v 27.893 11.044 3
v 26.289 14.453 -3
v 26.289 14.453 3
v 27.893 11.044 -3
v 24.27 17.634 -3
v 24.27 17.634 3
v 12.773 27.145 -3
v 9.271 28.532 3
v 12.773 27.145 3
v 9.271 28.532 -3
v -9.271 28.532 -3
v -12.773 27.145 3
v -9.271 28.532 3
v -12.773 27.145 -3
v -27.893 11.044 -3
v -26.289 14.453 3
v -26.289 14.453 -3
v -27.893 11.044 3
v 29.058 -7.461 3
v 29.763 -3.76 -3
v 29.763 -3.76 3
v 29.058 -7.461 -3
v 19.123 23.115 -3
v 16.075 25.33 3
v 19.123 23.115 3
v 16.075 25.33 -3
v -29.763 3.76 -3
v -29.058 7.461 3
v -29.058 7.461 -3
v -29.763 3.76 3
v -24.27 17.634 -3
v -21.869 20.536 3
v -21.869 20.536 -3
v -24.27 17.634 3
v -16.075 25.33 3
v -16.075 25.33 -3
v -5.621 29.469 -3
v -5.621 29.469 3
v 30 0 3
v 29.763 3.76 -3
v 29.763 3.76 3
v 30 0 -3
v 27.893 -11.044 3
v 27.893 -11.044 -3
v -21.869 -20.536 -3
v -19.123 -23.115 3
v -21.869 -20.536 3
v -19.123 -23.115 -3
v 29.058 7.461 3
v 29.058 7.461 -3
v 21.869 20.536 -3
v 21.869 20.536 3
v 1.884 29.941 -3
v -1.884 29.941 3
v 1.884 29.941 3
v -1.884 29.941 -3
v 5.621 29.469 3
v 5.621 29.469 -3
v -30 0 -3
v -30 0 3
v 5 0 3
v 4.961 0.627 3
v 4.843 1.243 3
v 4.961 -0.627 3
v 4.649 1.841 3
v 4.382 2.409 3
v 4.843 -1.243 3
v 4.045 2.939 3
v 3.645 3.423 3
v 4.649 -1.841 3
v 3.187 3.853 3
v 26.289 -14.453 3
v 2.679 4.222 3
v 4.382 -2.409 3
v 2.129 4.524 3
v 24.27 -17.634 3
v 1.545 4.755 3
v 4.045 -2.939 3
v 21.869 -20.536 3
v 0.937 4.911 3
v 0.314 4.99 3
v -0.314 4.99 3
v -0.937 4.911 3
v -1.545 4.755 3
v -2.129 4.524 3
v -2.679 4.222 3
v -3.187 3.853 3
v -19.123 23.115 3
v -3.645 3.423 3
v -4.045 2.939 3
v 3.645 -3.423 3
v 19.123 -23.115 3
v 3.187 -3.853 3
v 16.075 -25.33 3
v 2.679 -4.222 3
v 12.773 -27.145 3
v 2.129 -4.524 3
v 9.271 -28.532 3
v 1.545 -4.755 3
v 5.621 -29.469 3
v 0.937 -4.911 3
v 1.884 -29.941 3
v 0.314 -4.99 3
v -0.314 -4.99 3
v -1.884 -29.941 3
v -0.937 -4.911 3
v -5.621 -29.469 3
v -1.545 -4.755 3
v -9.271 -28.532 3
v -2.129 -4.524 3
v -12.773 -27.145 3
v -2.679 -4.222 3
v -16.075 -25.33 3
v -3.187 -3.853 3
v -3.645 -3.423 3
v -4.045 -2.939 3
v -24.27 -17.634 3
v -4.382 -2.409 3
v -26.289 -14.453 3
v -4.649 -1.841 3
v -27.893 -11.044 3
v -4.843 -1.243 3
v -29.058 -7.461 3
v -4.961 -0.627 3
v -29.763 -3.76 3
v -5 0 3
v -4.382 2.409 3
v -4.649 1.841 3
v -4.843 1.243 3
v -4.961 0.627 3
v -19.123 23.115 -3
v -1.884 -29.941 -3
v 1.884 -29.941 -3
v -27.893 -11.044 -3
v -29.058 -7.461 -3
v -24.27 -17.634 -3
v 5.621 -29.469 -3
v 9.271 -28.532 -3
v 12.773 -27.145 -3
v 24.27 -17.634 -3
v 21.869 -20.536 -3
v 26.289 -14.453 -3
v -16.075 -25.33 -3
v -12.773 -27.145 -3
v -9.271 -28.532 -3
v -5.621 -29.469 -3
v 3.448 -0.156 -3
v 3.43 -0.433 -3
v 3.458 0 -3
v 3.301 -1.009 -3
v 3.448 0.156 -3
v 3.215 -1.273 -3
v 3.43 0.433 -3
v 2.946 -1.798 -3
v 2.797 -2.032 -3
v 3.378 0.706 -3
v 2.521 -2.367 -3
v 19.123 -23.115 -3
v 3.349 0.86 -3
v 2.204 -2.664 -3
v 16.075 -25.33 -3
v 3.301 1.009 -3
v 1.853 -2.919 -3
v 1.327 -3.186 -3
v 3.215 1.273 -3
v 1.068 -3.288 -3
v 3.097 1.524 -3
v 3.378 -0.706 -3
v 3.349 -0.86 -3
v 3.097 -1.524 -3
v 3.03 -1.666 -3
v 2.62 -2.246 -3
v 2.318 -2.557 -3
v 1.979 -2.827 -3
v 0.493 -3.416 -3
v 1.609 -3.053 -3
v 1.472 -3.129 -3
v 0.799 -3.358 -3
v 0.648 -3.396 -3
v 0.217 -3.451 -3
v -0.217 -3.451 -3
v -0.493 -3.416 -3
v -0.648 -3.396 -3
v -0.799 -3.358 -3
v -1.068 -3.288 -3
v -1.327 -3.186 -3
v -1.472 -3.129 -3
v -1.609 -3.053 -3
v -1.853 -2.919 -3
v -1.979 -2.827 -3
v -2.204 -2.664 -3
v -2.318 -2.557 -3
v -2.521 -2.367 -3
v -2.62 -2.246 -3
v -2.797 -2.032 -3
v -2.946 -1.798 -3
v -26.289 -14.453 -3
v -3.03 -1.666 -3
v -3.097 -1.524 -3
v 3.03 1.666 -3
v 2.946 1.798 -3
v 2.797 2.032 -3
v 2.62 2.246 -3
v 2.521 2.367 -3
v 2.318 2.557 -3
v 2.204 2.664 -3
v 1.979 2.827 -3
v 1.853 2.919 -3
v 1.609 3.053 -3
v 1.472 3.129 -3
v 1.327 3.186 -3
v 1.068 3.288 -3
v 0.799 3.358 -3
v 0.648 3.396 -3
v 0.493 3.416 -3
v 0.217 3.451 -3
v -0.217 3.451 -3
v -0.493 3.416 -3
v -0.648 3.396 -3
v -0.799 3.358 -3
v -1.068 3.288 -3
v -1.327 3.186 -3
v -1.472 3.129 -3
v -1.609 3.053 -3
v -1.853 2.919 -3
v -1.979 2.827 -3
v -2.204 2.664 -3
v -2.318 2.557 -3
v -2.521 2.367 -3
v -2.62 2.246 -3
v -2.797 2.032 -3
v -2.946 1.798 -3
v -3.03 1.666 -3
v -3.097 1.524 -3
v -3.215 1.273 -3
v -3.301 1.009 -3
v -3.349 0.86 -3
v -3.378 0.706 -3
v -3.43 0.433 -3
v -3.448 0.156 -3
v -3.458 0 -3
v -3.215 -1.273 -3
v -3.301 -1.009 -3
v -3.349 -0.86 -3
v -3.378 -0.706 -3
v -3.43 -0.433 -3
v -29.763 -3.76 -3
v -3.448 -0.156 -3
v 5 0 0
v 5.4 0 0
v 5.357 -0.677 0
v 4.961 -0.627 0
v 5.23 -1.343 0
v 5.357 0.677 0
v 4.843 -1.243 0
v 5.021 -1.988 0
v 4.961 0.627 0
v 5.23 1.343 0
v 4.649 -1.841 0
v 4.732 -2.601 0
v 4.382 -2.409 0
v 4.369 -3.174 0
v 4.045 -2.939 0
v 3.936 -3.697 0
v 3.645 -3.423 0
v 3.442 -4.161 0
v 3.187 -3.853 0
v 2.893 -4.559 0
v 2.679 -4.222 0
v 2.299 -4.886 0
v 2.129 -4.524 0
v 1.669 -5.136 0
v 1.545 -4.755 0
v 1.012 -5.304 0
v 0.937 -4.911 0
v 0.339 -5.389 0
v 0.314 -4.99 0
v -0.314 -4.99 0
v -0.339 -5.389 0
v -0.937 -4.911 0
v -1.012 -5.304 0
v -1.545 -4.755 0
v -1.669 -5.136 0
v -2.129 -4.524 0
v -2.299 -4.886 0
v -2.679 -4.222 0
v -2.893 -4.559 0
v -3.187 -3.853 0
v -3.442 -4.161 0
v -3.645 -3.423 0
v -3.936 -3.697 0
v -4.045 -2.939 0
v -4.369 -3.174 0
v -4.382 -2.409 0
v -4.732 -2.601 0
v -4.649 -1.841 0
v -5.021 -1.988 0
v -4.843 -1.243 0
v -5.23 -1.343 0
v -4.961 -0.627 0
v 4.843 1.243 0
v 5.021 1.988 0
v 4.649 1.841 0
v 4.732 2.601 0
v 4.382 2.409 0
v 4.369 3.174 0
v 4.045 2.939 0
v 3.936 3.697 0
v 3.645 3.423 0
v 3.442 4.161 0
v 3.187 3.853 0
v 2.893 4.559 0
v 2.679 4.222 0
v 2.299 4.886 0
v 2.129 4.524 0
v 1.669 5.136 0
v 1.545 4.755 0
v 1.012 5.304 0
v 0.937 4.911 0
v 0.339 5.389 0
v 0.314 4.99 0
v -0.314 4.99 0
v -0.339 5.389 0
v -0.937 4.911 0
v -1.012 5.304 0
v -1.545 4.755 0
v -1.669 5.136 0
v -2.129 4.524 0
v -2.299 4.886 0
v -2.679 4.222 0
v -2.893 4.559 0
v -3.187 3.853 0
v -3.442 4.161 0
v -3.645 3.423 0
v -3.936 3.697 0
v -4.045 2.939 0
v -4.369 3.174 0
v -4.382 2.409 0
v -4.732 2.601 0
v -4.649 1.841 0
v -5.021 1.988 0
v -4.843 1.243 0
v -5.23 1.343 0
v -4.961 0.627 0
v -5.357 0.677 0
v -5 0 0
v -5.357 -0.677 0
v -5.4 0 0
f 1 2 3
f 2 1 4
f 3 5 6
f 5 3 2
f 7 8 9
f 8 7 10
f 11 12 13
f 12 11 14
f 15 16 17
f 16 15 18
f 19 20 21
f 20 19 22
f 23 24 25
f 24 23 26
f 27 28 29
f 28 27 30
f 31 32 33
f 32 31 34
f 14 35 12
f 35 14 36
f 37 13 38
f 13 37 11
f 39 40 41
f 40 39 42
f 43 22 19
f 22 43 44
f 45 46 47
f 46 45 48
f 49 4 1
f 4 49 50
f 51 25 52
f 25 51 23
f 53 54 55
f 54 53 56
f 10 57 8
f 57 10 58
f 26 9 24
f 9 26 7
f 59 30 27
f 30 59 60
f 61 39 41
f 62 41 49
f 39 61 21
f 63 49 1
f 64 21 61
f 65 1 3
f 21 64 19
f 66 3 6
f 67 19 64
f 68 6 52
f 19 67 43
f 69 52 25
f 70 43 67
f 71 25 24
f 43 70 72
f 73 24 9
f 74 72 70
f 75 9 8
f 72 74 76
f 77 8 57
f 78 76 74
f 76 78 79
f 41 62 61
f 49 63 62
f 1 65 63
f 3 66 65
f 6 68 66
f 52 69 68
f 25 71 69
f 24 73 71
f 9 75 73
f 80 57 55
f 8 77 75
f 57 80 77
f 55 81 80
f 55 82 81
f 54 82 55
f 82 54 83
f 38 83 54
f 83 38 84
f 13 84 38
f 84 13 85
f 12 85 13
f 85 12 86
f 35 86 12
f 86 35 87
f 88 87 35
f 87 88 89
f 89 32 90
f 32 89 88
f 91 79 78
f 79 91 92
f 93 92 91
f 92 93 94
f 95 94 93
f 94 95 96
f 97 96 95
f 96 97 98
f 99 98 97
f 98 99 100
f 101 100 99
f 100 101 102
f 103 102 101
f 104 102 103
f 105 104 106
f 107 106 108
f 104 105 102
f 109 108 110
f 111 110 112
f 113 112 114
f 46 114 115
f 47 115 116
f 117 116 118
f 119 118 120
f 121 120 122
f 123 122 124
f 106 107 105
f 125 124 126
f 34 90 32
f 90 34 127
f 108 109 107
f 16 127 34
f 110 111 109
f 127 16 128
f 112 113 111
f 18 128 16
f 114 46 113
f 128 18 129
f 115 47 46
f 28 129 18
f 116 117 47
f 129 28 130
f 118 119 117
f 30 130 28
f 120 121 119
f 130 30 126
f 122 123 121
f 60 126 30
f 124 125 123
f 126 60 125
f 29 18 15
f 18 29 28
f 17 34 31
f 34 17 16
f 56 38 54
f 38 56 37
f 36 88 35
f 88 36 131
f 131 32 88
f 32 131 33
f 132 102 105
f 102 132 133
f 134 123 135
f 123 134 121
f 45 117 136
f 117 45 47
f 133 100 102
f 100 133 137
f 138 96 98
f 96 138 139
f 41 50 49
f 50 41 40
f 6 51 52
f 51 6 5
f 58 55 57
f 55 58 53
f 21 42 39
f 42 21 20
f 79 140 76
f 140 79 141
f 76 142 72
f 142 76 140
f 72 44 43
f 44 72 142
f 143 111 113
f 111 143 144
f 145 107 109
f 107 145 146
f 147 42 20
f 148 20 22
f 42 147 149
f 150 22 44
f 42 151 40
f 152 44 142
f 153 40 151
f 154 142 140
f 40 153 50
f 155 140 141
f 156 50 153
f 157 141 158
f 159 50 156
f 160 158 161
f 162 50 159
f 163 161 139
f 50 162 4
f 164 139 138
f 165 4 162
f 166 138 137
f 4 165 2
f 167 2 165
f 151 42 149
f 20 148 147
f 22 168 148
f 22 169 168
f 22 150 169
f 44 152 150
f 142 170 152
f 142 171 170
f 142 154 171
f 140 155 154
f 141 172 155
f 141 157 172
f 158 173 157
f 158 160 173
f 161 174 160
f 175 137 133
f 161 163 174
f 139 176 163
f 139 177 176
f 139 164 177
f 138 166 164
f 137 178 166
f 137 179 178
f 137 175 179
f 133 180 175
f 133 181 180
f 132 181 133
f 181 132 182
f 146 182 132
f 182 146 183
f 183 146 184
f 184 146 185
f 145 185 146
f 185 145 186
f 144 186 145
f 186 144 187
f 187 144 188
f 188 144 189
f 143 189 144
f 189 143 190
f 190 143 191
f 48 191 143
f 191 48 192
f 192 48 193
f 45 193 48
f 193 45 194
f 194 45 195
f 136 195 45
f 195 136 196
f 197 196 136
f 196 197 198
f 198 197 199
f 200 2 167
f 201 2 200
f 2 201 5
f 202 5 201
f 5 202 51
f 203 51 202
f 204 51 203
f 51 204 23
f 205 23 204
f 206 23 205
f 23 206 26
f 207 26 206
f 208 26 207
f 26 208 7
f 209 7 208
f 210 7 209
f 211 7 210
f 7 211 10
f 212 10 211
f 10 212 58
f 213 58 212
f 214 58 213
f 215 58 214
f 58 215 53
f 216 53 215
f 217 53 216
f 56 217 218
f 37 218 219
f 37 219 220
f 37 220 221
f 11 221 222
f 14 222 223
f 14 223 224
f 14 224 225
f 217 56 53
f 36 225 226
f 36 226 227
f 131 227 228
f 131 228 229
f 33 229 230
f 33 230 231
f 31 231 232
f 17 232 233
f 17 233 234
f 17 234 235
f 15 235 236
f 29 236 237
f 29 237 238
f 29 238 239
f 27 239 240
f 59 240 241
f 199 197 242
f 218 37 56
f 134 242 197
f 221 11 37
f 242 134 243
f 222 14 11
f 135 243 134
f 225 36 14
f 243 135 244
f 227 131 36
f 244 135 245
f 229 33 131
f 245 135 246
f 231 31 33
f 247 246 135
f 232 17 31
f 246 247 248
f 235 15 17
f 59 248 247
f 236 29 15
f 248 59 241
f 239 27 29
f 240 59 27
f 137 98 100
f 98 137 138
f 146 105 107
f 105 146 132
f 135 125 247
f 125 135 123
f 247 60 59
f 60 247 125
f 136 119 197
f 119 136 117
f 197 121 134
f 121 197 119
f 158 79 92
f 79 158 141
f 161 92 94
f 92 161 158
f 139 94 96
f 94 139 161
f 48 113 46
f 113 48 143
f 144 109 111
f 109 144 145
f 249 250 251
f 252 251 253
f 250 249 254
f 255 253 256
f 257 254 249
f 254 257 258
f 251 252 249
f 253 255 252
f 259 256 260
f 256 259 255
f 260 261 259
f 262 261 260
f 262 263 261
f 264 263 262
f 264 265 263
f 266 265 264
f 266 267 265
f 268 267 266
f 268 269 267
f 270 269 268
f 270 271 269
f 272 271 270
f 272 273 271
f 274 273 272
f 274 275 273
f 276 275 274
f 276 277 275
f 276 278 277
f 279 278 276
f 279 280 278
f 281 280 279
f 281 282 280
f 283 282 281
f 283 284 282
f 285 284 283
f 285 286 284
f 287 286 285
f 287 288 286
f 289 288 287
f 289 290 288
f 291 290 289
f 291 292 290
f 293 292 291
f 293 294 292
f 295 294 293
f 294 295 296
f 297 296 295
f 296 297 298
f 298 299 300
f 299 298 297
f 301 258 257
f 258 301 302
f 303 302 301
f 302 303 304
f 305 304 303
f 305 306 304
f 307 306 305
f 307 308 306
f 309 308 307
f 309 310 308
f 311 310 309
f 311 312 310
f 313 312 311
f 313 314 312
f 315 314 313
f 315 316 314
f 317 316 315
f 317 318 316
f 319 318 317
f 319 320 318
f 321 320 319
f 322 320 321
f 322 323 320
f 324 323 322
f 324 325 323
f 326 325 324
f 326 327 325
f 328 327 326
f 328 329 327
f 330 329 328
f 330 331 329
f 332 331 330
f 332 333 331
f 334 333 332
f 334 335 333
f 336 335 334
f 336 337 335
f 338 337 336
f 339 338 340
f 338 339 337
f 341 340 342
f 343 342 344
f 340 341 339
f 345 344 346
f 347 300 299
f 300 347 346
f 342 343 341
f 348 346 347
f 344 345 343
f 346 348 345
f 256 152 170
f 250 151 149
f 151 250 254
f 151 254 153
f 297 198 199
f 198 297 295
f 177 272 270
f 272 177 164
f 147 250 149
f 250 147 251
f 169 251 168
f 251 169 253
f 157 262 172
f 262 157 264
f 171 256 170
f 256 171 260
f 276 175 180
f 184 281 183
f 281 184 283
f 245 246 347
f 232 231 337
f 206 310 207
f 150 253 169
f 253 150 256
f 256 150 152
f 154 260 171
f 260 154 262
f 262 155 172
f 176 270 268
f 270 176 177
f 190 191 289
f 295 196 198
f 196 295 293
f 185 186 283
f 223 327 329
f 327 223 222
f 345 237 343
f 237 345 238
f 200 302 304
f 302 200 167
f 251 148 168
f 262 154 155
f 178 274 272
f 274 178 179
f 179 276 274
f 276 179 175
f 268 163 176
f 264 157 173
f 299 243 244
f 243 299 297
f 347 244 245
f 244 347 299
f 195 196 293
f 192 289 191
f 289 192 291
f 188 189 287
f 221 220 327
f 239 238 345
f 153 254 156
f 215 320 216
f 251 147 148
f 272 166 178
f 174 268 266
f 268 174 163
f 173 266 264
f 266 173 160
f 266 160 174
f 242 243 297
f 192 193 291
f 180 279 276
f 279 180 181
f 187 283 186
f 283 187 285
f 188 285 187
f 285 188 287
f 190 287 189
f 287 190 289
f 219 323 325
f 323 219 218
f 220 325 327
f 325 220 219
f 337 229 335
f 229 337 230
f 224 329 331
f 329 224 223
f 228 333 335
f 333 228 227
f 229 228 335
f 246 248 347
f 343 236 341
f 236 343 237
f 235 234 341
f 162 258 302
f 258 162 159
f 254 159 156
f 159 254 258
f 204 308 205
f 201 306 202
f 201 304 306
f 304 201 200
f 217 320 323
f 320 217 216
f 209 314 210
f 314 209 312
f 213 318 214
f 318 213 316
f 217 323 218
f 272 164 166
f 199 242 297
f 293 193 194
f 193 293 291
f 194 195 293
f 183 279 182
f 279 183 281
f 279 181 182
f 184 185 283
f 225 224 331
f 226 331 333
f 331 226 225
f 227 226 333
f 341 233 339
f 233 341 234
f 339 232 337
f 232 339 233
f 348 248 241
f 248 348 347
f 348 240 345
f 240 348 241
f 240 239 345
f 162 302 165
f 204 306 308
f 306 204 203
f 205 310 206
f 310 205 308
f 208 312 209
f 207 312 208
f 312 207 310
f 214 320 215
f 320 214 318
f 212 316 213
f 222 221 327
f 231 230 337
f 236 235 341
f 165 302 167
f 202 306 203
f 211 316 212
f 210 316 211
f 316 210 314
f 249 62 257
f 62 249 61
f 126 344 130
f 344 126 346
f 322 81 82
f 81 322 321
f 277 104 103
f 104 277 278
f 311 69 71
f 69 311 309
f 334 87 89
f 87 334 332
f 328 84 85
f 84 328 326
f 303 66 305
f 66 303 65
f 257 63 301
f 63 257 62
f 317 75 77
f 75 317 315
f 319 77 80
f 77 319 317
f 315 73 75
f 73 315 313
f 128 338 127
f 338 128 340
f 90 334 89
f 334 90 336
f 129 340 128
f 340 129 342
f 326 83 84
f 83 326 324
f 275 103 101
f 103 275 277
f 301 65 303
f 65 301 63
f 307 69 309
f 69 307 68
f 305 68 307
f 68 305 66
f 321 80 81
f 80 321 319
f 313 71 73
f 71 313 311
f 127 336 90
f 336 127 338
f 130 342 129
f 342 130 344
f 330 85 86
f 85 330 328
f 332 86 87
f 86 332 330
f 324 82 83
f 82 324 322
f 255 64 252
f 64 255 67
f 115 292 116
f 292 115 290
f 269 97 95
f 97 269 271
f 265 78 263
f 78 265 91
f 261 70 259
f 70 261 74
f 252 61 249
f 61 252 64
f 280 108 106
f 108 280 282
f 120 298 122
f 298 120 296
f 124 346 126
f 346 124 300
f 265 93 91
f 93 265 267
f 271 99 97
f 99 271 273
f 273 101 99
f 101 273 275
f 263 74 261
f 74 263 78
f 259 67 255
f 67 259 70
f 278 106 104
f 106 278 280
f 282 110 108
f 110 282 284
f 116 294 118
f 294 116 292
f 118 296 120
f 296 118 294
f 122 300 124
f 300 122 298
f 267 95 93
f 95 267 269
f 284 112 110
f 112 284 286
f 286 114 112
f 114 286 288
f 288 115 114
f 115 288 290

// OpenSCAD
$fn = 50;


difference() {
	union() {
		translate(v = [0, 0, -3.0000000000]) {
			cylinder(h = 6, r = 30.0000000000);
		}
		#translate(v = [0, 0, -6.0000000000]) {
			cylinder(h = 6, r = 2.8750000000);
		}
	}
	union() {
		translate(v = [0, 0, 0]) {
			rotate(a = [0, 0, 0]) {
				difference() {
					union() {
						translate(v = [0, 0, -6.0000000000]) {
							cylinder(h = 6, r = 2.6000000000);
						}
						translate(v = [0, 0, -3.9000000000]) {
							cylinder(h = 3.9000000000, r1 = 2.8750000000, r2 = 5.4000000000);
						}
						translate(v = [0, 0, -6.0000000000]) {
							cylinder(h = 6, r = 2.8750000000);
						}
						translate(v = [0, 0, -6.0000000000]) {
							cylinder(h = 6, r = 2.6000000000);
						}
					}
					union();
				}
			}
		}
		#cylinder(h = 3, r = 5.0000000000);
	}
}
